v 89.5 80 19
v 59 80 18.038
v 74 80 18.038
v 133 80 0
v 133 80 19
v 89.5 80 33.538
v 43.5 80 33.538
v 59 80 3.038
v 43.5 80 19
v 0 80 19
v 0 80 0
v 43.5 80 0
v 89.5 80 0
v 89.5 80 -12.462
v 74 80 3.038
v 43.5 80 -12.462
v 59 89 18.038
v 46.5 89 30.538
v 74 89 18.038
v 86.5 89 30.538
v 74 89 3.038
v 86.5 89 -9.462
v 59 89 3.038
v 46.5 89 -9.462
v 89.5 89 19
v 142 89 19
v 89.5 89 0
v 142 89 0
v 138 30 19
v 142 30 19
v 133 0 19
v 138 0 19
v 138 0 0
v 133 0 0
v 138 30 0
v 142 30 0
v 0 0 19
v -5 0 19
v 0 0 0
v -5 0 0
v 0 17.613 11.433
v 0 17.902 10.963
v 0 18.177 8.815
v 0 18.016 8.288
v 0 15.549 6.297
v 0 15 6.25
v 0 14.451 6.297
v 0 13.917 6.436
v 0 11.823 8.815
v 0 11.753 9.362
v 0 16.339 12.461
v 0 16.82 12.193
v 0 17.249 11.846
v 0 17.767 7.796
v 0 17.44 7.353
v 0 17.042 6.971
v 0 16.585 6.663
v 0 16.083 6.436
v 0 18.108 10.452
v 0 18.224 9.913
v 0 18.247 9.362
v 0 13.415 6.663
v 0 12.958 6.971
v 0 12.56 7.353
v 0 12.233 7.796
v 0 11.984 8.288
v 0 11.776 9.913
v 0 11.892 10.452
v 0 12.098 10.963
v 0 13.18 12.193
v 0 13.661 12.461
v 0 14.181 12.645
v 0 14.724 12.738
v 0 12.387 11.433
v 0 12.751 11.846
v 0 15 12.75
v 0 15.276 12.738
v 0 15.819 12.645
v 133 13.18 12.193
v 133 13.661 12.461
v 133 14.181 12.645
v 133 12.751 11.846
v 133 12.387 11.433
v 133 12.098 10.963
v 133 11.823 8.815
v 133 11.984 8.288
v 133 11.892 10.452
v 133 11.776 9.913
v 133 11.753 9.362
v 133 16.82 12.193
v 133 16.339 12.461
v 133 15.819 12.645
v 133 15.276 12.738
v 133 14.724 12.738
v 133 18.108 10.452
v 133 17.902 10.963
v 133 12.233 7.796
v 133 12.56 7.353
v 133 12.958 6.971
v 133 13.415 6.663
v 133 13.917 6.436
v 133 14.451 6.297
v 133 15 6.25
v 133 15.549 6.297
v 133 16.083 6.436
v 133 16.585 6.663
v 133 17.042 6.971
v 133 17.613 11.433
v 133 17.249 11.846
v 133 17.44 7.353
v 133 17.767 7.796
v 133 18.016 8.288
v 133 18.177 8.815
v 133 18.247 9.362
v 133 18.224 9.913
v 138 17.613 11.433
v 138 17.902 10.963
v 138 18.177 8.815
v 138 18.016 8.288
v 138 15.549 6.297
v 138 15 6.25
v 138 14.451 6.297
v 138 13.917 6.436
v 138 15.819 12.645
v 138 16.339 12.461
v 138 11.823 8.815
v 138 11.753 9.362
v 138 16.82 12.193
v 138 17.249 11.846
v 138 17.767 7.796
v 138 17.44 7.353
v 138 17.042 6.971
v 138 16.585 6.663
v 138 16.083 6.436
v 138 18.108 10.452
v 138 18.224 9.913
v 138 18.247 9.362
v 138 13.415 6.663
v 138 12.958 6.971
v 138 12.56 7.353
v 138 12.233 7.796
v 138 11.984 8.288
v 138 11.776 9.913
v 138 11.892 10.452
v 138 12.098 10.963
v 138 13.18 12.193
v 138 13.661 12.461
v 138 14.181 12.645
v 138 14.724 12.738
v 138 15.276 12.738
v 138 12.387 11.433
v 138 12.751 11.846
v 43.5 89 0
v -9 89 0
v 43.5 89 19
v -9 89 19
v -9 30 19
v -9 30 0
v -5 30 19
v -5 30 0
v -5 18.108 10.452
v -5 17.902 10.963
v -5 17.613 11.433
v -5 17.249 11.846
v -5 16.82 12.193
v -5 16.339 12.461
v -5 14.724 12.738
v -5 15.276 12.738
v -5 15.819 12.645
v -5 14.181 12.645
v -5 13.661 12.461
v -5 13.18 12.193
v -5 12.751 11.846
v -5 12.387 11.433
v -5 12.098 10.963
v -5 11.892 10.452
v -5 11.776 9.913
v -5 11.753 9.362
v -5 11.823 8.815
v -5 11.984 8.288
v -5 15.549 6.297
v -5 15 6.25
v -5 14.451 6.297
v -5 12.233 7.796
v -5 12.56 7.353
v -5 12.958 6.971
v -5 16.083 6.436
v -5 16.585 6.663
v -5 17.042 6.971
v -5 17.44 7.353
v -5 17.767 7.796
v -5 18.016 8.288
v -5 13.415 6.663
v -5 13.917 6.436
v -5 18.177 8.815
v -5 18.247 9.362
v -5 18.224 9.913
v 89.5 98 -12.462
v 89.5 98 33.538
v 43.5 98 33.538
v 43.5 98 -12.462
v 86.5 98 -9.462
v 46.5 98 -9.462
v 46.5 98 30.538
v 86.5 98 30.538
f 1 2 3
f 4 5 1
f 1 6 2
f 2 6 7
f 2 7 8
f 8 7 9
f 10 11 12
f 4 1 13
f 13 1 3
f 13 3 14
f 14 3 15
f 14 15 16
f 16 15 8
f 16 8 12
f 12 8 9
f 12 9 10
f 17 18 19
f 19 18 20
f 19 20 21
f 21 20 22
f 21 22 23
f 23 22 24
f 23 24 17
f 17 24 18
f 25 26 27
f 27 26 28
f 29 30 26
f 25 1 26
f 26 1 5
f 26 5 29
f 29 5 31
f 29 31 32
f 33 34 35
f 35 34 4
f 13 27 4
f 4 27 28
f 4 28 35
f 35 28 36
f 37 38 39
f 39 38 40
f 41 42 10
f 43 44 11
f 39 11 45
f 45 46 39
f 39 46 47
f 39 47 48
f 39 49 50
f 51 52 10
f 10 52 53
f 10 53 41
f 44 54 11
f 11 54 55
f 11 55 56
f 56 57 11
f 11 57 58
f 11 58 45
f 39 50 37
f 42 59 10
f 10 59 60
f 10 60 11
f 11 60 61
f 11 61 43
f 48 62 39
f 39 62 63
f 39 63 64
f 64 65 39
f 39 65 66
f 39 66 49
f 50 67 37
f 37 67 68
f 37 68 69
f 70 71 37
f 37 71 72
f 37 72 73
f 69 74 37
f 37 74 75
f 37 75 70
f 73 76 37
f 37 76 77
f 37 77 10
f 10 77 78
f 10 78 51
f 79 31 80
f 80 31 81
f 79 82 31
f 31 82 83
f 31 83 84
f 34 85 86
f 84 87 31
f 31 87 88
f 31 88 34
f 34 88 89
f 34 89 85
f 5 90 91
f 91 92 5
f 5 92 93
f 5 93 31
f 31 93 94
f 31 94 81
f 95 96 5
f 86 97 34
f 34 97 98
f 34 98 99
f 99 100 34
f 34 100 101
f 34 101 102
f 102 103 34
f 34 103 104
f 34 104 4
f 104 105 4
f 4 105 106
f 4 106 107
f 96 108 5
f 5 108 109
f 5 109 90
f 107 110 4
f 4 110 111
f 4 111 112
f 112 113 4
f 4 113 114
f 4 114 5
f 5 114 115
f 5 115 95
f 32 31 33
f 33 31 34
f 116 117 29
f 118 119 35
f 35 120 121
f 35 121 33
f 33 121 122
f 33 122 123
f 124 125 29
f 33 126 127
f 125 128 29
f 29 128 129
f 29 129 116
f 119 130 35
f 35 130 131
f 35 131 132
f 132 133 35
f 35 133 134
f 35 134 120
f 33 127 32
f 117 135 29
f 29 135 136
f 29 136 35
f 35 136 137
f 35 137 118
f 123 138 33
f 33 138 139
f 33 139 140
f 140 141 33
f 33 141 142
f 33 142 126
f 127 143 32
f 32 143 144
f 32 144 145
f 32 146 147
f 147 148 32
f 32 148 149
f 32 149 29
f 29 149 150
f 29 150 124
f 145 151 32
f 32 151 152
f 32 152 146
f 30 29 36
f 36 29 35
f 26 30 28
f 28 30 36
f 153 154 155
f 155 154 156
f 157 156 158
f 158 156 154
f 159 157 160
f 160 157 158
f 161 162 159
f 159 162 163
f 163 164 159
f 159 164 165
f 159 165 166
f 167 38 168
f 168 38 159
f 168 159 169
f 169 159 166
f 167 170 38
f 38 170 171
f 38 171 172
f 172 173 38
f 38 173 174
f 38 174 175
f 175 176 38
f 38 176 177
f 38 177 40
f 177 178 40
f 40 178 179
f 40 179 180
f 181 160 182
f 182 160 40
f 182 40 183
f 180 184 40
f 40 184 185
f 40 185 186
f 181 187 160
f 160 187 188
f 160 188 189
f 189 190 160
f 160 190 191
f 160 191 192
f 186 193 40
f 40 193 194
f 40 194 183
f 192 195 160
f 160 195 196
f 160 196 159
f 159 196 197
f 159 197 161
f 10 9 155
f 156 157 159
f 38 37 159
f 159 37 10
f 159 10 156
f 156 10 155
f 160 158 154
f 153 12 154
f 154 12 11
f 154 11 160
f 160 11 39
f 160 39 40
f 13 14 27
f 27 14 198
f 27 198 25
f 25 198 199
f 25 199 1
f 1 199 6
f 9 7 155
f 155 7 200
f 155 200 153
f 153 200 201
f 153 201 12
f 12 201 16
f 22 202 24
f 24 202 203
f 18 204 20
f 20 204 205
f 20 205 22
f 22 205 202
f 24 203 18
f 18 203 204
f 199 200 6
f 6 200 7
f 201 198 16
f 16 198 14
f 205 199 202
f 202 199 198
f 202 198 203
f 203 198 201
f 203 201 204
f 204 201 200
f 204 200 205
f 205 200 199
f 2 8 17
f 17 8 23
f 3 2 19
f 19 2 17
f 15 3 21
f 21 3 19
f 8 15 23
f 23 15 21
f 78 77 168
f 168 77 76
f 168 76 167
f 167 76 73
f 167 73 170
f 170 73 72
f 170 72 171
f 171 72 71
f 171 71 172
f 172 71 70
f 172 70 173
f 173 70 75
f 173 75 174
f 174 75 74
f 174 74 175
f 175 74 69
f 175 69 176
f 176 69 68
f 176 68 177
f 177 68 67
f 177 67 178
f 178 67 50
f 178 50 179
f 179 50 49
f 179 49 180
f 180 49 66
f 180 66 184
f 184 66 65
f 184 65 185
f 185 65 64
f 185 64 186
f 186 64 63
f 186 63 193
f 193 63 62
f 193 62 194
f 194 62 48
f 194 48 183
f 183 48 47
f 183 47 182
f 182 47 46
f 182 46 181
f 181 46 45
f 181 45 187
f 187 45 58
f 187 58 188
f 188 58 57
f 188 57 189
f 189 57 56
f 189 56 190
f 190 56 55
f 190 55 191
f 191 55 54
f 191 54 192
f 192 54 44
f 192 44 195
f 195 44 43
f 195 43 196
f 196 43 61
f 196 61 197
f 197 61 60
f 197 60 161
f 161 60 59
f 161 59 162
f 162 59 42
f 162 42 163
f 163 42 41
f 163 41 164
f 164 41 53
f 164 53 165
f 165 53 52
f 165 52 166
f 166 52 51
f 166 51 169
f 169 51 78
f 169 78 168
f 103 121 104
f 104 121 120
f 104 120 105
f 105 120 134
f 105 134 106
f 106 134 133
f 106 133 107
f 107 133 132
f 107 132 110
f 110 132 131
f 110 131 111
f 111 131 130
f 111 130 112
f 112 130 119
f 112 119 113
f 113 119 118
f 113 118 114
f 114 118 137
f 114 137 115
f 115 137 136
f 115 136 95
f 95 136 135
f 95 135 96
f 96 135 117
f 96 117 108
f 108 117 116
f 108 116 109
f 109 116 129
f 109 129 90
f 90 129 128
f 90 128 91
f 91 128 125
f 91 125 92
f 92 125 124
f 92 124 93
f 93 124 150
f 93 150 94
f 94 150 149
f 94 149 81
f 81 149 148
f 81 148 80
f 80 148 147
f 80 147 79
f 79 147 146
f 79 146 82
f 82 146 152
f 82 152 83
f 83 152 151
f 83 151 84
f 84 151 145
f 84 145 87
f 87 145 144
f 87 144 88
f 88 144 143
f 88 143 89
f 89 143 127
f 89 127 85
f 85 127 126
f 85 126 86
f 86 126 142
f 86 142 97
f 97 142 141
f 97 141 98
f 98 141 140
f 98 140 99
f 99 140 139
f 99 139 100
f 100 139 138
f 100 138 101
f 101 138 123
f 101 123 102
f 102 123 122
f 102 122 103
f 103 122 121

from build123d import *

# Parameters (mm, degrees)
Y_KSEKLIK_EKSTR_ZYON1_DEPTH             = 19
IZIM2_W                                 = 40
IZIM2_H                                 = 40
Y_KSEKLIK_EKSTR_ZYON2_DEPTH             = 9
IZIM5_W                                 = 46
IZIM5_H                                 = 46
IZIM5_W_2                               = 40
IZIM5_H_2                               = 40
Y_KSEKLIK_EKSTR_ZYON3_DEPTH             = 9
Y_KSEKLIK_EKSTR_ZYON3_DIRECTION_2_REACH = 172.345
KES_EKSTR_ZYON1_DEPTH                   = 9
KES_EKSTR_ZYON1_DEPTH_BACK              = 9
IZIM7_W                                 = 15
IZIM7_H                                 = 15
IZIM8_R                                 = 3.25
KES_EKSTR_ZYON2_DEPTH                   = 163


with BuildPart() as part:
    # Çizim1 → Yükseklik-Ekstrüzyon1 (new body)
    with BuildSketch(Plane.XY):
        Polygon((0, 0), (0, 80), (133, 80), (133, 0), (138, 0), (138, 30), (142, 30), (142, 89), (-9, 89), (-9, 30), (-5, 30), (-5, 0), align=None)
    extrude(amount=Y_KSEKLIK_EKSTR_ZYON1_DEPTH)

    # Çizim2 → Yükseklik-Ekstrüzyon2 (add)
    with BuildSketch(Plane(origin=(0, 89, 0), x_dir=(1, 0, 0), z_dir=(0, 1, 0))):
        with Locations((66.5, -10.538159249)):
            Rectangle(IZIM2_W, IZIM2_H)
    extrude(amount=-Y_KSEKLIK_EKSTR_ZYON2_DEPTH)

    # Çizim5 → Yükseklik-Ekstrüzyon3 (add)
    with BuildSketch(Plane(origin=(0, 89, 0), x_dir=(1, 0, 0), z_dir=(0, 1, 0))):
        with Locations((66.5, -10.538159249)):
            Rectangle(IZIM5_W, IZIM5_H)
        with Locations((66.5, -10.538159249)):
            Rectangle(IZIM5_W_2, IZIM5_H_2, mode=Mode.SUBTRACT)
    extrude(amount=Y_KSEKLIK_EKSTR_ZYON3_DEPTH)

    # Yükseklik-Ekstrüzyon3 direction 2: up to this face of the body (flat: up to its plane)
    y_kseklik_ekstr_zyon3_direction_2_end = Plane(part.part.faces().sort_by_distance((66.5, 80, 9.993333768))[0])
    # Çizim5 → Yükseklik-Ekstrüzyon3 direction 2 (add, up to the picked face)
    with BuildSketch(Plane(origin=(0, 89, 0), x_dir=(1, 0, 0), z_dir=(0, 1, 0)), mode=Mode.PRIVATE) as y_kseklik_ekstr_zyon3_direction_2_sk1:
        with Locations((66.5, -10.538159249)):
            Rectangle(IZIM5_W, IZIM5_H)
        with Locations((66.5, -10.538159249)):
            Rectangle(IZIM5_W_2, IZIM5_H_2, mode=Mode.SUBTRACT)
    y_kseklik_ekstr_zyon3_direction_2_tool1 = split(extrude(y_kseklik_ekstr_zyon3_direction_2_sk1.sketch, amount=-Y_KSEKLIK_EKSTR_ZYON3_DIRECTION_2_REACH, mode=Mode.PRIVATE), bisect_by=y_kseklik_ekstr_zyon3_direction_2_end, keep=Keep.BOTH, mode=Mode.PRIVATE)
    add(y_kseklik_ekstr_zyon3_direction_2_tool1.solids().sort_by(Axis((66.5, 89, 32.887621), (0, -1, 0)))[0])

    # Çizim7 → Kes-Ekstrüzyon1 (cut, two sides: drawn at the far end of the back side and taken through both)
    with BuildSketch(Plane(origin=(0, 89, 0), x_dir=(1, 0, 0), z_dir=(0, 1, 0)).offset(-KES_EKSTR_ZYON1_DEPTH_BACK)):
        with Locations((66.5, -10.538159249)):
            Rectangle(IZIM7_W, IZIM7_H)
    extrude(amount=KES_EKSTR_ZYON1_DEPTH + KES_EKSTR_ZYON1_DEPTH_BACK, mode=Mode.SUBTRACT)

    # Çizim8 → Kes-Ekstrüzyon2 (cut)
    with BuildSketch(Plane(origin=(138, 0, 0), x_dir=(0, 0, -1), z_dir=(1, 0, 0))):
        with Locations((-9.5, 15)):
            Circle(IZIM8_R)
    extrude(amount=-KES_EKSTR_ZYON2_DEPTH, mode=Mode.SUBTRACT)


solid = part.part
